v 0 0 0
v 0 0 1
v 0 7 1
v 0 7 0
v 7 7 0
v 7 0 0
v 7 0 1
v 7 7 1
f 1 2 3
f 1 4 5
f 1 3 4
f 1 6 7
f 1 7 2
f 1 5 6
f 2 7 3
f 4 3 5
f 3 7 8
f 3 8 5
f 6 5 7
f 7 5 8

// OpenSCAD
/* Warning, this is a very basic generator with a lot of approximation 
input data : [VQFN, T2B, 7x7x1.0mm, 48, , A, C04-21424A]
generated by com.zoubworld.electronics.cad.model3d.Basic
Date : Sun Feb 15 10:50:49 CET 2026
*/

//body
color("black")
translate([0,0,0])
cube([7.0,7.0,1.0], center=false);
